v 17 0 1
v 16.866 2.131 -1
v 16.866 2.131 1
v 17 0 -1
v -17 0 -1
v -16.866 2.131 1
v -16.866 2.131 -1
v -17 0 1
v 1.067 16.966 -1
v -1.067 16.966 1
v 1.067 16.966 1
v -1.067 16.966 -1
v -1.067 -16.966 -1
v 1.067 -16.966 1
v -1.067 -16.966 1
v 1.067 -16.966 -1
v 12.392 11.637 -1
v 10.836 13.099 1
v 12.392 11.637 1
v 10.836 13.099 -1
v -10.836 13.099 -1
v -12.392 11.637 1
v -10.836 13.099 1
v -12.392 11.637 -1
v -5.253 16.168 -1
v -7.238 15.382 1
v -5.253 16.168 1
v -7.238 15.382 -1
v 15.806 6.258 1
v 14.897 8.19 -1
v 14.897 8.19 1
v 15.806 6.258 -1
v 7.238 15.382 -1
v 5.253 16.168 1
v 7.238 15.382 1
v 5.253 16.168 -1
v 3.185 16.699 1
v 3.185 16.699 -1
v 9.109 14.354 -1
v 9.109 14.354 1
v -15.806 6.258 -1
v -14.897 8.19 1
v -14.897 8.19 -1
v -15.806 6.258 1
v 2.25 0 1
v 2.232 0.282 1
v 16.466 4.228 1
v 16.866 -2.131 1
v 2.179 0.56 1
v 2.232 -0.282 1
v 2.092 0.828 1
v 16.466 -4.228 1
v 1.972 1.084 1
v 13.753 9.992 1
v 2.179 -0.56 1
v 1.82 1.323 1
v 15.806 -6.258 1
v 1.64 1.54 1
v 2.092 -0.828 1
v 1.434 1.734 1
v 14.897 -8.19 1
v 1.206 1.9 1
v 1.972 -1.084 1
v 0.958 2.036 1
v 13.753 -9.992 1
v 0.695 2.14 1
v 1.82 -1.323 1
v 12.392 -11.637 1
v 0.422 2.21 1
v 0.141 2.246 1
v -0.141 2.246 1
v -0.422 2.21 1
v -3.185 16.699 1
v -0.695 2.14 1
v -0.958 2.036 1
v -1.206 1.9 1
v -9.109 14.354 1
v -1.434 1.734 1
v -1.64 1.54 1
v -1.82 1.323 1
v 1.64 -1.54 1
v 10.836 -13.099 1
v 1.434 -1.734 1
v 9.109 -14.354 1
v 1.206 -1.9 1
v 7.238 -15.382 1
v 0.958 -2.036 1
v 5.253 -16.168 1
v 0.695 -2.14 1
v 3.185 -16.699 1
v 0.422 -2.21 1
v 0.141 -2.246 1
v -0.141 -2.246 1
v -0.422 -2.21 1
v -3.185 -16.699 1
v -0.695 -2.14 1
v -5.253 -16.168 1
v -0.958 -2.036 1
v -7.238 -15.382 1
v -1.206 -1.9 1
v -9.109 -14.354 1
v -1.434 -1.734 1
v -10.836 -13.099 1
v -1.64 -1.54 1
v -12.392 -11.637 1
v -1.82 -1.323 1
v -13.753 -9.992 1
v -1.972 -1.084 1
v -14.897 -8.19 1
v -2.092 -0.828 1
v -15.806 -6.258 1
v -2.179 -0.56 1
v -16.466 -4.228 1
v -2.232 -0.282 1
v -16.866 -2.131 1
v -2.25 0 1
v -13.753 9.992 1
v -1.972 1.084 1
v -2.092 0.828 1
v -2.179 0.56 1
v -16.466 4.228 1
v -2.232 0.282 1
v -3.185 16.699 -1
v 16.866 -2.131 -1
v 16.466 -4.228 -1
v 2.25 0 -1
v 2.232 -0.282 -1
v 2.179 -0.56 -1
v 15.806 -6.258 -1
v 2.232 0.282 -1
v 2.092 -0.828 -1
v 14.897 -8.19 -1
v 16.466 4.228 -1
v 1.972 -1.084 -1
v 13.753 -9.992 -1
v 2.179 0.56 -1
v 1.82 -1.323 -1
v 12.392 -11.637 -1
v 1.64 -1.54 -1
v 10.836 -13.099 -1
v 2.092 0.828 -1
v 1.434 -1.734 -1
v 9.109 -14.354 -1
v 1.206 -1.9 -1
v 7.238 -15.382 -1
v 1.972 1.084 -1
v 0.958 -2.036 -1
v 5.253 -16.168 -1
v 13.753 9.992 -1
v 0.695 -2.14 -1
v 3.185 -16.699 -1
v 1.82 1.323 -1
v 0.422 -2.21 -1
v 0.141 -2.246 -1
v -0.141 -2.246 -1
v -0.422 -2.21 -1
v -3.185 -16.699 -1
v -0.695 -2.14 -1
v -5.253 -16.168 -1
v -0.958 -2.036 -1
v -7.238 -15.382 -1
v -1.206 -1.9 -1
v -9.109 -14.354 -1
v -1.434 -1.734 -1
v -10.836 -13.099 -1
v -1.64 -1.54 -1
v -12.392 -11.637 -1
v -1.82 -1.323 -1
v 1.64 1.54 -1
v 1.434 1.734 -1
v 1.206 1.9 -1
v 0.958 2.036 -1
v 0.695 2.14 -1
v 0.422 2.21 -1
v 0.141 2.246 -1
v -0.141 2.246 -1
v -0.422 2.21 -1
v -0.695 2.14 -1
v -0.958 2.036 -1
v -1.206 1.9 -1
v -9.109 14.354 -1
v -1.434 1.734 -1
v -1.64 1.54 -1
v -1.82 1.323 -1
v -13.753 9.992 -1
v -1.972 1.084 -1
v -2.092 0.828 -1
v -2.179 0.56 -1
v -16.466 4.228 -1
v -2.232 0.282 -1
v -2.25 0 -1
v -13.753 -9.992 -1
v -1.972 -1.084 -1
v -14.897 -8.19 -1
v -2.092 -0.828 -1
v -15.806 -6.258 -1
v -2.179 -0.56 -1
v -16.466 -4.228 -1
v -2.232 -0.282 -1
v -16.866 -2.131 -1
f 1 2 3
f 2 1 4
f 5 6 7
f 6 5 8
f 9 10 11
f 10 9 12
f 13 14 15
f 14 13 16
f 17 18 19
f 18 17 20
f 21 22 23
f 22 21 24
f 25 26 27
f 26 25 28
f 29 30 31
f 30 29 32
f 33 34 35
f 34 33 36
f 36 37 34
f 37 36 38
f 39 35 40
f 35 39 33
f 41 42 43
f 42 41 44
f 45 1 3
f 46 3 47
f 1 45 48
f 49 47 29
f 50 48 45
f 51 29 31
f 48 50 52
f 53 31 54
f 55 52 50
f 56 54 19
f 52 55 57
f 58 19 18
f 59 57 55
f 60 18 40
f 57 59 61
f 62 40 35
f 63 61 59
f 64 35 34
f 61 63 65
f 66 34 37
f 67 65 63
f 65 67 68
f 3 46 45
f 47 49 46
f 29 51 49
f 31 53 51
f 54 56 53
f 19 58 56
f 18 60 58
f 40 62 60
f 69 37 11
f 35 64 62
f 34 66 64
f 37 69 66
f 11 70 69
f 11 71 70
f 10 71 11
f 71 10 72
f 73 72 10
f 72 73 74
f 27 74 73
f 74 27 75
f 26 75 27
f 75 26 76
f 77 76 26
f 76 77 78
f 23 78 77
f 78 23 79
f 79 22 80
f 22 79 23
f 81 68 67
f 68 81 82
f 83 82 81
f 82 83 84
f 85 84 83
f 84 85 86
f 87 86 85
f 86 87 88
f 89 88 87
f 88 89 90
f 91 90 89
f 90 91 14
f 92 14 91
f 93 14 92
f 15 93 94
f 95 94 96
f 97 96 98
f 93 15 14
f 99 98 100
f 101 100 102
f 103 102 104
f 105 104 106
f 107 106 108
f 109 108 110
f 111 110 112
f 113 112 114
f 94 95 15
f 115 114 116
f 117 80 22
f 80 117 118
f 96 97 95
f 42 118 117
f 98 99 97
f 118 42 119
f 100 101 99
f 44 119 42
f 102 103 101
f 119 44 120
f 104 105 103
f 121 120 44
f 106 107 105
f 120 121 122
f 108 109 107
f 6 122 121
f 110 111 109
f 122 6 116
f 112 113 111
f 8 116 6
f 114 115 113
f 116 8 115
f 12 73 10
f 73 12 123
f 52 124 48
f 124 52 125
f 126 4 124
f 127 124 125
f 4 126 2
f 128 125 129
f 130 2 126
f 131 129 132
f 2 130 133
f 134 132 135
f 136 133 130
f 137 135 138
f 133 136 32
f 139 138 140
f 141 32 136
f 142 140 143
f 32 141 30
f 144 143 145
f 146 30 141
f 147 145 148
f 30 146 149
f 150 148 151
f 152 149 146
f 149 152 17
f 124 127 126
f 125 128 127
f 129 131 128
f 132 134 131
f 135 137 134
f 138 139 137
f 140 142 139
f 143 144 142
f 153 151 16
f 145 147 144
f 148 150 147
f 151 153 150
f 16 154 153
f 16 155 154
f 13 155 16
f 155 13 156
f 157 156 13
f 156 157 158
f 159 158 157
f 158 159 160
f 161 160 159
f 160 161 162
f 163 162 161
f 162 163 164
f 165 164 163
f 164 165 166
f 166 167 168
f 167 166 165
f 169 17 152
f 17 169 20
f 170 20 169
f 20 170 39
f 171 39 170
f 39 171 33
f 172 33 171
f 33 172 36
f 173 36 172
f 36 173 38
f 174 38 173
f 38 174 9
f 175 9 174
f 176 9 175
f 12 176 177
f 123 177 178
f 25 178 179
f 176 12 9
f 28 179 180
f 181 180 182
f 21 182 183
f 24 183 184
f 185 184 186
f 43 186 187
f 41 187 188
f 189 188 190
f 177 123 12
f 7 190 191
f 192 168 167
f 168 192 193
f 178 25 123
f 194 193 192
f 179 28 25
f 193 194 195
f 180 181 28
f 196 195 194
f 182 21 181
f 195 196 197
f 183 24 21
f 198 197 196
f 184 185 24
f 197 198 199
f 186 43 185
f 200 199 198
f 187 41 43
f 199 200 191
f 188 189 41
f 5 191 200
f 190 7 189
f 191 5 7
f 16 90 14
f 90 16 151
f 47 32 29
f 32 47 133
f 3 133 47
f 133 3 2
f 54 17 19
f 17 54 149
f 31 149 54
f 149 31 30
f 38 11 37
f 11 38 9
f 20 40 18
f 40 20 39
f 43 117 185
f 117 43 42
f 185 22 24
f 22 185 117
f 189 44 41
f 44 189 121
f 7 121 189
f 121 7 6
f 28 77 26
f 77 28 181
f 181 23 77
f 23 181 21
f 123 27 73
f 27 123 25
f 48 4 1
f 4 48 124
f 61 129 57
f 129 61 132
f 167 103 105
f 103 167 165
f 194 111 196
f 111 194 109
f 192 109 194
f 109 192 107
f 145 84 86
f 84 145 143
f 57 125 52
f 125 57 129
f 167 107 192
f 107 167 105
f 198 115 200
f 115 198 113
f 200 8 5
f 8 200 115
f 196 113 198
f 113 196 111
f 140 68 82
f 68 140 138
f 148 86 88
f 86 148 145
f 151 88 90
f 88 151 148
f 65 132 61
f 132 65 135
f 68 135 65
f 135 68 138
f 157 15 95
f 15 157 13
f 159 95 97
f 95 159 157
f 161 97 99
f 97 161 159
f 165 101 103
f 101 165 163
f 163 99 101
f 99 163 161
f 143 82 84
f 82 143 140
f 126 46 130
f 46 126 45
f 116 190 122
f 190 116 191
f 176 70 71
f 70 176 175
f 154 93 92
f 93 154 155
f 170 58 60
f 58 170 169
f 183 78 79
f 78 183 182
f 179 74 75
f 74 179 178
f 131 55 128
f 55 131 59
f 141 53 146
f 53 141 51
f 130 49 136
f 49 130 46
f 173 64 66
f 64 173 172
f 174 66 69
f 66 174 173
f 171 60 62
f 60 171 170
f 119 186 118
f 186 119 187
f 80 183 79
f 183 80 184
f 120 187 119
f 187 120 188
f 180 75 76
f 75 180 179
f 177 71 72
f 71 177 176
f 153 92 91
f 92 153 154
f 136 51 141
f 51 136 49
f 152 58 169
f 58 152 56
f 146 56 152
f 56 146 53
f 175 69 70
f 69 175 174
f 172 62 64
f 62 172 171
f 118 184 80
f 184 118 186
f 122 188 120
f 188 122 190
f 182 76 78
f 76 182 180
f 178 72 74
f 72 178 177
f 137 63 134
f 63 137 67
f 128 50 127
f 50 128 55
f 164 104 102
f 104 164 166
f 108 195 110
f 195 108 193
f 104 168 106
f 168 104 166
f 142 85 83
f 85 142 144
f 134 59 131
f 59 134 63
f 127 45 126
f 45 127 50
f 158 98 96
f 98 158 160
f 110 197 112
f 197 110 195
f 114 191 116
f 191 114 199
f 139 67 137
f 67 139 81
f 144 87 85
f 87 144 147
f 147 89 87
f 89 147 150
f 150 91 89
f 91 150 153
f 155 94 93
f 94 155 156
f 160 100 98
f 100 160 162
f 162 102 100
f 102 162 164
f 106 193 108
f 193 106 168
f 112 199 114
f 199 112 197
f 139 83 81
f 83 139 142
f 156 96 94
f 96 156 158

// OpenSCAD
$fn = 50;


difference() {
	union() {
		translate(v = [0, 0, -1.0000000000]) {
			cylinder(h = 2, r = 17.0000000000);
		}
	}
	union() {
		translate(v = [0, 0, -100.0000000000]) {
			cylinder(h = 200, r = 2.2500000000);
		}
	}
}
